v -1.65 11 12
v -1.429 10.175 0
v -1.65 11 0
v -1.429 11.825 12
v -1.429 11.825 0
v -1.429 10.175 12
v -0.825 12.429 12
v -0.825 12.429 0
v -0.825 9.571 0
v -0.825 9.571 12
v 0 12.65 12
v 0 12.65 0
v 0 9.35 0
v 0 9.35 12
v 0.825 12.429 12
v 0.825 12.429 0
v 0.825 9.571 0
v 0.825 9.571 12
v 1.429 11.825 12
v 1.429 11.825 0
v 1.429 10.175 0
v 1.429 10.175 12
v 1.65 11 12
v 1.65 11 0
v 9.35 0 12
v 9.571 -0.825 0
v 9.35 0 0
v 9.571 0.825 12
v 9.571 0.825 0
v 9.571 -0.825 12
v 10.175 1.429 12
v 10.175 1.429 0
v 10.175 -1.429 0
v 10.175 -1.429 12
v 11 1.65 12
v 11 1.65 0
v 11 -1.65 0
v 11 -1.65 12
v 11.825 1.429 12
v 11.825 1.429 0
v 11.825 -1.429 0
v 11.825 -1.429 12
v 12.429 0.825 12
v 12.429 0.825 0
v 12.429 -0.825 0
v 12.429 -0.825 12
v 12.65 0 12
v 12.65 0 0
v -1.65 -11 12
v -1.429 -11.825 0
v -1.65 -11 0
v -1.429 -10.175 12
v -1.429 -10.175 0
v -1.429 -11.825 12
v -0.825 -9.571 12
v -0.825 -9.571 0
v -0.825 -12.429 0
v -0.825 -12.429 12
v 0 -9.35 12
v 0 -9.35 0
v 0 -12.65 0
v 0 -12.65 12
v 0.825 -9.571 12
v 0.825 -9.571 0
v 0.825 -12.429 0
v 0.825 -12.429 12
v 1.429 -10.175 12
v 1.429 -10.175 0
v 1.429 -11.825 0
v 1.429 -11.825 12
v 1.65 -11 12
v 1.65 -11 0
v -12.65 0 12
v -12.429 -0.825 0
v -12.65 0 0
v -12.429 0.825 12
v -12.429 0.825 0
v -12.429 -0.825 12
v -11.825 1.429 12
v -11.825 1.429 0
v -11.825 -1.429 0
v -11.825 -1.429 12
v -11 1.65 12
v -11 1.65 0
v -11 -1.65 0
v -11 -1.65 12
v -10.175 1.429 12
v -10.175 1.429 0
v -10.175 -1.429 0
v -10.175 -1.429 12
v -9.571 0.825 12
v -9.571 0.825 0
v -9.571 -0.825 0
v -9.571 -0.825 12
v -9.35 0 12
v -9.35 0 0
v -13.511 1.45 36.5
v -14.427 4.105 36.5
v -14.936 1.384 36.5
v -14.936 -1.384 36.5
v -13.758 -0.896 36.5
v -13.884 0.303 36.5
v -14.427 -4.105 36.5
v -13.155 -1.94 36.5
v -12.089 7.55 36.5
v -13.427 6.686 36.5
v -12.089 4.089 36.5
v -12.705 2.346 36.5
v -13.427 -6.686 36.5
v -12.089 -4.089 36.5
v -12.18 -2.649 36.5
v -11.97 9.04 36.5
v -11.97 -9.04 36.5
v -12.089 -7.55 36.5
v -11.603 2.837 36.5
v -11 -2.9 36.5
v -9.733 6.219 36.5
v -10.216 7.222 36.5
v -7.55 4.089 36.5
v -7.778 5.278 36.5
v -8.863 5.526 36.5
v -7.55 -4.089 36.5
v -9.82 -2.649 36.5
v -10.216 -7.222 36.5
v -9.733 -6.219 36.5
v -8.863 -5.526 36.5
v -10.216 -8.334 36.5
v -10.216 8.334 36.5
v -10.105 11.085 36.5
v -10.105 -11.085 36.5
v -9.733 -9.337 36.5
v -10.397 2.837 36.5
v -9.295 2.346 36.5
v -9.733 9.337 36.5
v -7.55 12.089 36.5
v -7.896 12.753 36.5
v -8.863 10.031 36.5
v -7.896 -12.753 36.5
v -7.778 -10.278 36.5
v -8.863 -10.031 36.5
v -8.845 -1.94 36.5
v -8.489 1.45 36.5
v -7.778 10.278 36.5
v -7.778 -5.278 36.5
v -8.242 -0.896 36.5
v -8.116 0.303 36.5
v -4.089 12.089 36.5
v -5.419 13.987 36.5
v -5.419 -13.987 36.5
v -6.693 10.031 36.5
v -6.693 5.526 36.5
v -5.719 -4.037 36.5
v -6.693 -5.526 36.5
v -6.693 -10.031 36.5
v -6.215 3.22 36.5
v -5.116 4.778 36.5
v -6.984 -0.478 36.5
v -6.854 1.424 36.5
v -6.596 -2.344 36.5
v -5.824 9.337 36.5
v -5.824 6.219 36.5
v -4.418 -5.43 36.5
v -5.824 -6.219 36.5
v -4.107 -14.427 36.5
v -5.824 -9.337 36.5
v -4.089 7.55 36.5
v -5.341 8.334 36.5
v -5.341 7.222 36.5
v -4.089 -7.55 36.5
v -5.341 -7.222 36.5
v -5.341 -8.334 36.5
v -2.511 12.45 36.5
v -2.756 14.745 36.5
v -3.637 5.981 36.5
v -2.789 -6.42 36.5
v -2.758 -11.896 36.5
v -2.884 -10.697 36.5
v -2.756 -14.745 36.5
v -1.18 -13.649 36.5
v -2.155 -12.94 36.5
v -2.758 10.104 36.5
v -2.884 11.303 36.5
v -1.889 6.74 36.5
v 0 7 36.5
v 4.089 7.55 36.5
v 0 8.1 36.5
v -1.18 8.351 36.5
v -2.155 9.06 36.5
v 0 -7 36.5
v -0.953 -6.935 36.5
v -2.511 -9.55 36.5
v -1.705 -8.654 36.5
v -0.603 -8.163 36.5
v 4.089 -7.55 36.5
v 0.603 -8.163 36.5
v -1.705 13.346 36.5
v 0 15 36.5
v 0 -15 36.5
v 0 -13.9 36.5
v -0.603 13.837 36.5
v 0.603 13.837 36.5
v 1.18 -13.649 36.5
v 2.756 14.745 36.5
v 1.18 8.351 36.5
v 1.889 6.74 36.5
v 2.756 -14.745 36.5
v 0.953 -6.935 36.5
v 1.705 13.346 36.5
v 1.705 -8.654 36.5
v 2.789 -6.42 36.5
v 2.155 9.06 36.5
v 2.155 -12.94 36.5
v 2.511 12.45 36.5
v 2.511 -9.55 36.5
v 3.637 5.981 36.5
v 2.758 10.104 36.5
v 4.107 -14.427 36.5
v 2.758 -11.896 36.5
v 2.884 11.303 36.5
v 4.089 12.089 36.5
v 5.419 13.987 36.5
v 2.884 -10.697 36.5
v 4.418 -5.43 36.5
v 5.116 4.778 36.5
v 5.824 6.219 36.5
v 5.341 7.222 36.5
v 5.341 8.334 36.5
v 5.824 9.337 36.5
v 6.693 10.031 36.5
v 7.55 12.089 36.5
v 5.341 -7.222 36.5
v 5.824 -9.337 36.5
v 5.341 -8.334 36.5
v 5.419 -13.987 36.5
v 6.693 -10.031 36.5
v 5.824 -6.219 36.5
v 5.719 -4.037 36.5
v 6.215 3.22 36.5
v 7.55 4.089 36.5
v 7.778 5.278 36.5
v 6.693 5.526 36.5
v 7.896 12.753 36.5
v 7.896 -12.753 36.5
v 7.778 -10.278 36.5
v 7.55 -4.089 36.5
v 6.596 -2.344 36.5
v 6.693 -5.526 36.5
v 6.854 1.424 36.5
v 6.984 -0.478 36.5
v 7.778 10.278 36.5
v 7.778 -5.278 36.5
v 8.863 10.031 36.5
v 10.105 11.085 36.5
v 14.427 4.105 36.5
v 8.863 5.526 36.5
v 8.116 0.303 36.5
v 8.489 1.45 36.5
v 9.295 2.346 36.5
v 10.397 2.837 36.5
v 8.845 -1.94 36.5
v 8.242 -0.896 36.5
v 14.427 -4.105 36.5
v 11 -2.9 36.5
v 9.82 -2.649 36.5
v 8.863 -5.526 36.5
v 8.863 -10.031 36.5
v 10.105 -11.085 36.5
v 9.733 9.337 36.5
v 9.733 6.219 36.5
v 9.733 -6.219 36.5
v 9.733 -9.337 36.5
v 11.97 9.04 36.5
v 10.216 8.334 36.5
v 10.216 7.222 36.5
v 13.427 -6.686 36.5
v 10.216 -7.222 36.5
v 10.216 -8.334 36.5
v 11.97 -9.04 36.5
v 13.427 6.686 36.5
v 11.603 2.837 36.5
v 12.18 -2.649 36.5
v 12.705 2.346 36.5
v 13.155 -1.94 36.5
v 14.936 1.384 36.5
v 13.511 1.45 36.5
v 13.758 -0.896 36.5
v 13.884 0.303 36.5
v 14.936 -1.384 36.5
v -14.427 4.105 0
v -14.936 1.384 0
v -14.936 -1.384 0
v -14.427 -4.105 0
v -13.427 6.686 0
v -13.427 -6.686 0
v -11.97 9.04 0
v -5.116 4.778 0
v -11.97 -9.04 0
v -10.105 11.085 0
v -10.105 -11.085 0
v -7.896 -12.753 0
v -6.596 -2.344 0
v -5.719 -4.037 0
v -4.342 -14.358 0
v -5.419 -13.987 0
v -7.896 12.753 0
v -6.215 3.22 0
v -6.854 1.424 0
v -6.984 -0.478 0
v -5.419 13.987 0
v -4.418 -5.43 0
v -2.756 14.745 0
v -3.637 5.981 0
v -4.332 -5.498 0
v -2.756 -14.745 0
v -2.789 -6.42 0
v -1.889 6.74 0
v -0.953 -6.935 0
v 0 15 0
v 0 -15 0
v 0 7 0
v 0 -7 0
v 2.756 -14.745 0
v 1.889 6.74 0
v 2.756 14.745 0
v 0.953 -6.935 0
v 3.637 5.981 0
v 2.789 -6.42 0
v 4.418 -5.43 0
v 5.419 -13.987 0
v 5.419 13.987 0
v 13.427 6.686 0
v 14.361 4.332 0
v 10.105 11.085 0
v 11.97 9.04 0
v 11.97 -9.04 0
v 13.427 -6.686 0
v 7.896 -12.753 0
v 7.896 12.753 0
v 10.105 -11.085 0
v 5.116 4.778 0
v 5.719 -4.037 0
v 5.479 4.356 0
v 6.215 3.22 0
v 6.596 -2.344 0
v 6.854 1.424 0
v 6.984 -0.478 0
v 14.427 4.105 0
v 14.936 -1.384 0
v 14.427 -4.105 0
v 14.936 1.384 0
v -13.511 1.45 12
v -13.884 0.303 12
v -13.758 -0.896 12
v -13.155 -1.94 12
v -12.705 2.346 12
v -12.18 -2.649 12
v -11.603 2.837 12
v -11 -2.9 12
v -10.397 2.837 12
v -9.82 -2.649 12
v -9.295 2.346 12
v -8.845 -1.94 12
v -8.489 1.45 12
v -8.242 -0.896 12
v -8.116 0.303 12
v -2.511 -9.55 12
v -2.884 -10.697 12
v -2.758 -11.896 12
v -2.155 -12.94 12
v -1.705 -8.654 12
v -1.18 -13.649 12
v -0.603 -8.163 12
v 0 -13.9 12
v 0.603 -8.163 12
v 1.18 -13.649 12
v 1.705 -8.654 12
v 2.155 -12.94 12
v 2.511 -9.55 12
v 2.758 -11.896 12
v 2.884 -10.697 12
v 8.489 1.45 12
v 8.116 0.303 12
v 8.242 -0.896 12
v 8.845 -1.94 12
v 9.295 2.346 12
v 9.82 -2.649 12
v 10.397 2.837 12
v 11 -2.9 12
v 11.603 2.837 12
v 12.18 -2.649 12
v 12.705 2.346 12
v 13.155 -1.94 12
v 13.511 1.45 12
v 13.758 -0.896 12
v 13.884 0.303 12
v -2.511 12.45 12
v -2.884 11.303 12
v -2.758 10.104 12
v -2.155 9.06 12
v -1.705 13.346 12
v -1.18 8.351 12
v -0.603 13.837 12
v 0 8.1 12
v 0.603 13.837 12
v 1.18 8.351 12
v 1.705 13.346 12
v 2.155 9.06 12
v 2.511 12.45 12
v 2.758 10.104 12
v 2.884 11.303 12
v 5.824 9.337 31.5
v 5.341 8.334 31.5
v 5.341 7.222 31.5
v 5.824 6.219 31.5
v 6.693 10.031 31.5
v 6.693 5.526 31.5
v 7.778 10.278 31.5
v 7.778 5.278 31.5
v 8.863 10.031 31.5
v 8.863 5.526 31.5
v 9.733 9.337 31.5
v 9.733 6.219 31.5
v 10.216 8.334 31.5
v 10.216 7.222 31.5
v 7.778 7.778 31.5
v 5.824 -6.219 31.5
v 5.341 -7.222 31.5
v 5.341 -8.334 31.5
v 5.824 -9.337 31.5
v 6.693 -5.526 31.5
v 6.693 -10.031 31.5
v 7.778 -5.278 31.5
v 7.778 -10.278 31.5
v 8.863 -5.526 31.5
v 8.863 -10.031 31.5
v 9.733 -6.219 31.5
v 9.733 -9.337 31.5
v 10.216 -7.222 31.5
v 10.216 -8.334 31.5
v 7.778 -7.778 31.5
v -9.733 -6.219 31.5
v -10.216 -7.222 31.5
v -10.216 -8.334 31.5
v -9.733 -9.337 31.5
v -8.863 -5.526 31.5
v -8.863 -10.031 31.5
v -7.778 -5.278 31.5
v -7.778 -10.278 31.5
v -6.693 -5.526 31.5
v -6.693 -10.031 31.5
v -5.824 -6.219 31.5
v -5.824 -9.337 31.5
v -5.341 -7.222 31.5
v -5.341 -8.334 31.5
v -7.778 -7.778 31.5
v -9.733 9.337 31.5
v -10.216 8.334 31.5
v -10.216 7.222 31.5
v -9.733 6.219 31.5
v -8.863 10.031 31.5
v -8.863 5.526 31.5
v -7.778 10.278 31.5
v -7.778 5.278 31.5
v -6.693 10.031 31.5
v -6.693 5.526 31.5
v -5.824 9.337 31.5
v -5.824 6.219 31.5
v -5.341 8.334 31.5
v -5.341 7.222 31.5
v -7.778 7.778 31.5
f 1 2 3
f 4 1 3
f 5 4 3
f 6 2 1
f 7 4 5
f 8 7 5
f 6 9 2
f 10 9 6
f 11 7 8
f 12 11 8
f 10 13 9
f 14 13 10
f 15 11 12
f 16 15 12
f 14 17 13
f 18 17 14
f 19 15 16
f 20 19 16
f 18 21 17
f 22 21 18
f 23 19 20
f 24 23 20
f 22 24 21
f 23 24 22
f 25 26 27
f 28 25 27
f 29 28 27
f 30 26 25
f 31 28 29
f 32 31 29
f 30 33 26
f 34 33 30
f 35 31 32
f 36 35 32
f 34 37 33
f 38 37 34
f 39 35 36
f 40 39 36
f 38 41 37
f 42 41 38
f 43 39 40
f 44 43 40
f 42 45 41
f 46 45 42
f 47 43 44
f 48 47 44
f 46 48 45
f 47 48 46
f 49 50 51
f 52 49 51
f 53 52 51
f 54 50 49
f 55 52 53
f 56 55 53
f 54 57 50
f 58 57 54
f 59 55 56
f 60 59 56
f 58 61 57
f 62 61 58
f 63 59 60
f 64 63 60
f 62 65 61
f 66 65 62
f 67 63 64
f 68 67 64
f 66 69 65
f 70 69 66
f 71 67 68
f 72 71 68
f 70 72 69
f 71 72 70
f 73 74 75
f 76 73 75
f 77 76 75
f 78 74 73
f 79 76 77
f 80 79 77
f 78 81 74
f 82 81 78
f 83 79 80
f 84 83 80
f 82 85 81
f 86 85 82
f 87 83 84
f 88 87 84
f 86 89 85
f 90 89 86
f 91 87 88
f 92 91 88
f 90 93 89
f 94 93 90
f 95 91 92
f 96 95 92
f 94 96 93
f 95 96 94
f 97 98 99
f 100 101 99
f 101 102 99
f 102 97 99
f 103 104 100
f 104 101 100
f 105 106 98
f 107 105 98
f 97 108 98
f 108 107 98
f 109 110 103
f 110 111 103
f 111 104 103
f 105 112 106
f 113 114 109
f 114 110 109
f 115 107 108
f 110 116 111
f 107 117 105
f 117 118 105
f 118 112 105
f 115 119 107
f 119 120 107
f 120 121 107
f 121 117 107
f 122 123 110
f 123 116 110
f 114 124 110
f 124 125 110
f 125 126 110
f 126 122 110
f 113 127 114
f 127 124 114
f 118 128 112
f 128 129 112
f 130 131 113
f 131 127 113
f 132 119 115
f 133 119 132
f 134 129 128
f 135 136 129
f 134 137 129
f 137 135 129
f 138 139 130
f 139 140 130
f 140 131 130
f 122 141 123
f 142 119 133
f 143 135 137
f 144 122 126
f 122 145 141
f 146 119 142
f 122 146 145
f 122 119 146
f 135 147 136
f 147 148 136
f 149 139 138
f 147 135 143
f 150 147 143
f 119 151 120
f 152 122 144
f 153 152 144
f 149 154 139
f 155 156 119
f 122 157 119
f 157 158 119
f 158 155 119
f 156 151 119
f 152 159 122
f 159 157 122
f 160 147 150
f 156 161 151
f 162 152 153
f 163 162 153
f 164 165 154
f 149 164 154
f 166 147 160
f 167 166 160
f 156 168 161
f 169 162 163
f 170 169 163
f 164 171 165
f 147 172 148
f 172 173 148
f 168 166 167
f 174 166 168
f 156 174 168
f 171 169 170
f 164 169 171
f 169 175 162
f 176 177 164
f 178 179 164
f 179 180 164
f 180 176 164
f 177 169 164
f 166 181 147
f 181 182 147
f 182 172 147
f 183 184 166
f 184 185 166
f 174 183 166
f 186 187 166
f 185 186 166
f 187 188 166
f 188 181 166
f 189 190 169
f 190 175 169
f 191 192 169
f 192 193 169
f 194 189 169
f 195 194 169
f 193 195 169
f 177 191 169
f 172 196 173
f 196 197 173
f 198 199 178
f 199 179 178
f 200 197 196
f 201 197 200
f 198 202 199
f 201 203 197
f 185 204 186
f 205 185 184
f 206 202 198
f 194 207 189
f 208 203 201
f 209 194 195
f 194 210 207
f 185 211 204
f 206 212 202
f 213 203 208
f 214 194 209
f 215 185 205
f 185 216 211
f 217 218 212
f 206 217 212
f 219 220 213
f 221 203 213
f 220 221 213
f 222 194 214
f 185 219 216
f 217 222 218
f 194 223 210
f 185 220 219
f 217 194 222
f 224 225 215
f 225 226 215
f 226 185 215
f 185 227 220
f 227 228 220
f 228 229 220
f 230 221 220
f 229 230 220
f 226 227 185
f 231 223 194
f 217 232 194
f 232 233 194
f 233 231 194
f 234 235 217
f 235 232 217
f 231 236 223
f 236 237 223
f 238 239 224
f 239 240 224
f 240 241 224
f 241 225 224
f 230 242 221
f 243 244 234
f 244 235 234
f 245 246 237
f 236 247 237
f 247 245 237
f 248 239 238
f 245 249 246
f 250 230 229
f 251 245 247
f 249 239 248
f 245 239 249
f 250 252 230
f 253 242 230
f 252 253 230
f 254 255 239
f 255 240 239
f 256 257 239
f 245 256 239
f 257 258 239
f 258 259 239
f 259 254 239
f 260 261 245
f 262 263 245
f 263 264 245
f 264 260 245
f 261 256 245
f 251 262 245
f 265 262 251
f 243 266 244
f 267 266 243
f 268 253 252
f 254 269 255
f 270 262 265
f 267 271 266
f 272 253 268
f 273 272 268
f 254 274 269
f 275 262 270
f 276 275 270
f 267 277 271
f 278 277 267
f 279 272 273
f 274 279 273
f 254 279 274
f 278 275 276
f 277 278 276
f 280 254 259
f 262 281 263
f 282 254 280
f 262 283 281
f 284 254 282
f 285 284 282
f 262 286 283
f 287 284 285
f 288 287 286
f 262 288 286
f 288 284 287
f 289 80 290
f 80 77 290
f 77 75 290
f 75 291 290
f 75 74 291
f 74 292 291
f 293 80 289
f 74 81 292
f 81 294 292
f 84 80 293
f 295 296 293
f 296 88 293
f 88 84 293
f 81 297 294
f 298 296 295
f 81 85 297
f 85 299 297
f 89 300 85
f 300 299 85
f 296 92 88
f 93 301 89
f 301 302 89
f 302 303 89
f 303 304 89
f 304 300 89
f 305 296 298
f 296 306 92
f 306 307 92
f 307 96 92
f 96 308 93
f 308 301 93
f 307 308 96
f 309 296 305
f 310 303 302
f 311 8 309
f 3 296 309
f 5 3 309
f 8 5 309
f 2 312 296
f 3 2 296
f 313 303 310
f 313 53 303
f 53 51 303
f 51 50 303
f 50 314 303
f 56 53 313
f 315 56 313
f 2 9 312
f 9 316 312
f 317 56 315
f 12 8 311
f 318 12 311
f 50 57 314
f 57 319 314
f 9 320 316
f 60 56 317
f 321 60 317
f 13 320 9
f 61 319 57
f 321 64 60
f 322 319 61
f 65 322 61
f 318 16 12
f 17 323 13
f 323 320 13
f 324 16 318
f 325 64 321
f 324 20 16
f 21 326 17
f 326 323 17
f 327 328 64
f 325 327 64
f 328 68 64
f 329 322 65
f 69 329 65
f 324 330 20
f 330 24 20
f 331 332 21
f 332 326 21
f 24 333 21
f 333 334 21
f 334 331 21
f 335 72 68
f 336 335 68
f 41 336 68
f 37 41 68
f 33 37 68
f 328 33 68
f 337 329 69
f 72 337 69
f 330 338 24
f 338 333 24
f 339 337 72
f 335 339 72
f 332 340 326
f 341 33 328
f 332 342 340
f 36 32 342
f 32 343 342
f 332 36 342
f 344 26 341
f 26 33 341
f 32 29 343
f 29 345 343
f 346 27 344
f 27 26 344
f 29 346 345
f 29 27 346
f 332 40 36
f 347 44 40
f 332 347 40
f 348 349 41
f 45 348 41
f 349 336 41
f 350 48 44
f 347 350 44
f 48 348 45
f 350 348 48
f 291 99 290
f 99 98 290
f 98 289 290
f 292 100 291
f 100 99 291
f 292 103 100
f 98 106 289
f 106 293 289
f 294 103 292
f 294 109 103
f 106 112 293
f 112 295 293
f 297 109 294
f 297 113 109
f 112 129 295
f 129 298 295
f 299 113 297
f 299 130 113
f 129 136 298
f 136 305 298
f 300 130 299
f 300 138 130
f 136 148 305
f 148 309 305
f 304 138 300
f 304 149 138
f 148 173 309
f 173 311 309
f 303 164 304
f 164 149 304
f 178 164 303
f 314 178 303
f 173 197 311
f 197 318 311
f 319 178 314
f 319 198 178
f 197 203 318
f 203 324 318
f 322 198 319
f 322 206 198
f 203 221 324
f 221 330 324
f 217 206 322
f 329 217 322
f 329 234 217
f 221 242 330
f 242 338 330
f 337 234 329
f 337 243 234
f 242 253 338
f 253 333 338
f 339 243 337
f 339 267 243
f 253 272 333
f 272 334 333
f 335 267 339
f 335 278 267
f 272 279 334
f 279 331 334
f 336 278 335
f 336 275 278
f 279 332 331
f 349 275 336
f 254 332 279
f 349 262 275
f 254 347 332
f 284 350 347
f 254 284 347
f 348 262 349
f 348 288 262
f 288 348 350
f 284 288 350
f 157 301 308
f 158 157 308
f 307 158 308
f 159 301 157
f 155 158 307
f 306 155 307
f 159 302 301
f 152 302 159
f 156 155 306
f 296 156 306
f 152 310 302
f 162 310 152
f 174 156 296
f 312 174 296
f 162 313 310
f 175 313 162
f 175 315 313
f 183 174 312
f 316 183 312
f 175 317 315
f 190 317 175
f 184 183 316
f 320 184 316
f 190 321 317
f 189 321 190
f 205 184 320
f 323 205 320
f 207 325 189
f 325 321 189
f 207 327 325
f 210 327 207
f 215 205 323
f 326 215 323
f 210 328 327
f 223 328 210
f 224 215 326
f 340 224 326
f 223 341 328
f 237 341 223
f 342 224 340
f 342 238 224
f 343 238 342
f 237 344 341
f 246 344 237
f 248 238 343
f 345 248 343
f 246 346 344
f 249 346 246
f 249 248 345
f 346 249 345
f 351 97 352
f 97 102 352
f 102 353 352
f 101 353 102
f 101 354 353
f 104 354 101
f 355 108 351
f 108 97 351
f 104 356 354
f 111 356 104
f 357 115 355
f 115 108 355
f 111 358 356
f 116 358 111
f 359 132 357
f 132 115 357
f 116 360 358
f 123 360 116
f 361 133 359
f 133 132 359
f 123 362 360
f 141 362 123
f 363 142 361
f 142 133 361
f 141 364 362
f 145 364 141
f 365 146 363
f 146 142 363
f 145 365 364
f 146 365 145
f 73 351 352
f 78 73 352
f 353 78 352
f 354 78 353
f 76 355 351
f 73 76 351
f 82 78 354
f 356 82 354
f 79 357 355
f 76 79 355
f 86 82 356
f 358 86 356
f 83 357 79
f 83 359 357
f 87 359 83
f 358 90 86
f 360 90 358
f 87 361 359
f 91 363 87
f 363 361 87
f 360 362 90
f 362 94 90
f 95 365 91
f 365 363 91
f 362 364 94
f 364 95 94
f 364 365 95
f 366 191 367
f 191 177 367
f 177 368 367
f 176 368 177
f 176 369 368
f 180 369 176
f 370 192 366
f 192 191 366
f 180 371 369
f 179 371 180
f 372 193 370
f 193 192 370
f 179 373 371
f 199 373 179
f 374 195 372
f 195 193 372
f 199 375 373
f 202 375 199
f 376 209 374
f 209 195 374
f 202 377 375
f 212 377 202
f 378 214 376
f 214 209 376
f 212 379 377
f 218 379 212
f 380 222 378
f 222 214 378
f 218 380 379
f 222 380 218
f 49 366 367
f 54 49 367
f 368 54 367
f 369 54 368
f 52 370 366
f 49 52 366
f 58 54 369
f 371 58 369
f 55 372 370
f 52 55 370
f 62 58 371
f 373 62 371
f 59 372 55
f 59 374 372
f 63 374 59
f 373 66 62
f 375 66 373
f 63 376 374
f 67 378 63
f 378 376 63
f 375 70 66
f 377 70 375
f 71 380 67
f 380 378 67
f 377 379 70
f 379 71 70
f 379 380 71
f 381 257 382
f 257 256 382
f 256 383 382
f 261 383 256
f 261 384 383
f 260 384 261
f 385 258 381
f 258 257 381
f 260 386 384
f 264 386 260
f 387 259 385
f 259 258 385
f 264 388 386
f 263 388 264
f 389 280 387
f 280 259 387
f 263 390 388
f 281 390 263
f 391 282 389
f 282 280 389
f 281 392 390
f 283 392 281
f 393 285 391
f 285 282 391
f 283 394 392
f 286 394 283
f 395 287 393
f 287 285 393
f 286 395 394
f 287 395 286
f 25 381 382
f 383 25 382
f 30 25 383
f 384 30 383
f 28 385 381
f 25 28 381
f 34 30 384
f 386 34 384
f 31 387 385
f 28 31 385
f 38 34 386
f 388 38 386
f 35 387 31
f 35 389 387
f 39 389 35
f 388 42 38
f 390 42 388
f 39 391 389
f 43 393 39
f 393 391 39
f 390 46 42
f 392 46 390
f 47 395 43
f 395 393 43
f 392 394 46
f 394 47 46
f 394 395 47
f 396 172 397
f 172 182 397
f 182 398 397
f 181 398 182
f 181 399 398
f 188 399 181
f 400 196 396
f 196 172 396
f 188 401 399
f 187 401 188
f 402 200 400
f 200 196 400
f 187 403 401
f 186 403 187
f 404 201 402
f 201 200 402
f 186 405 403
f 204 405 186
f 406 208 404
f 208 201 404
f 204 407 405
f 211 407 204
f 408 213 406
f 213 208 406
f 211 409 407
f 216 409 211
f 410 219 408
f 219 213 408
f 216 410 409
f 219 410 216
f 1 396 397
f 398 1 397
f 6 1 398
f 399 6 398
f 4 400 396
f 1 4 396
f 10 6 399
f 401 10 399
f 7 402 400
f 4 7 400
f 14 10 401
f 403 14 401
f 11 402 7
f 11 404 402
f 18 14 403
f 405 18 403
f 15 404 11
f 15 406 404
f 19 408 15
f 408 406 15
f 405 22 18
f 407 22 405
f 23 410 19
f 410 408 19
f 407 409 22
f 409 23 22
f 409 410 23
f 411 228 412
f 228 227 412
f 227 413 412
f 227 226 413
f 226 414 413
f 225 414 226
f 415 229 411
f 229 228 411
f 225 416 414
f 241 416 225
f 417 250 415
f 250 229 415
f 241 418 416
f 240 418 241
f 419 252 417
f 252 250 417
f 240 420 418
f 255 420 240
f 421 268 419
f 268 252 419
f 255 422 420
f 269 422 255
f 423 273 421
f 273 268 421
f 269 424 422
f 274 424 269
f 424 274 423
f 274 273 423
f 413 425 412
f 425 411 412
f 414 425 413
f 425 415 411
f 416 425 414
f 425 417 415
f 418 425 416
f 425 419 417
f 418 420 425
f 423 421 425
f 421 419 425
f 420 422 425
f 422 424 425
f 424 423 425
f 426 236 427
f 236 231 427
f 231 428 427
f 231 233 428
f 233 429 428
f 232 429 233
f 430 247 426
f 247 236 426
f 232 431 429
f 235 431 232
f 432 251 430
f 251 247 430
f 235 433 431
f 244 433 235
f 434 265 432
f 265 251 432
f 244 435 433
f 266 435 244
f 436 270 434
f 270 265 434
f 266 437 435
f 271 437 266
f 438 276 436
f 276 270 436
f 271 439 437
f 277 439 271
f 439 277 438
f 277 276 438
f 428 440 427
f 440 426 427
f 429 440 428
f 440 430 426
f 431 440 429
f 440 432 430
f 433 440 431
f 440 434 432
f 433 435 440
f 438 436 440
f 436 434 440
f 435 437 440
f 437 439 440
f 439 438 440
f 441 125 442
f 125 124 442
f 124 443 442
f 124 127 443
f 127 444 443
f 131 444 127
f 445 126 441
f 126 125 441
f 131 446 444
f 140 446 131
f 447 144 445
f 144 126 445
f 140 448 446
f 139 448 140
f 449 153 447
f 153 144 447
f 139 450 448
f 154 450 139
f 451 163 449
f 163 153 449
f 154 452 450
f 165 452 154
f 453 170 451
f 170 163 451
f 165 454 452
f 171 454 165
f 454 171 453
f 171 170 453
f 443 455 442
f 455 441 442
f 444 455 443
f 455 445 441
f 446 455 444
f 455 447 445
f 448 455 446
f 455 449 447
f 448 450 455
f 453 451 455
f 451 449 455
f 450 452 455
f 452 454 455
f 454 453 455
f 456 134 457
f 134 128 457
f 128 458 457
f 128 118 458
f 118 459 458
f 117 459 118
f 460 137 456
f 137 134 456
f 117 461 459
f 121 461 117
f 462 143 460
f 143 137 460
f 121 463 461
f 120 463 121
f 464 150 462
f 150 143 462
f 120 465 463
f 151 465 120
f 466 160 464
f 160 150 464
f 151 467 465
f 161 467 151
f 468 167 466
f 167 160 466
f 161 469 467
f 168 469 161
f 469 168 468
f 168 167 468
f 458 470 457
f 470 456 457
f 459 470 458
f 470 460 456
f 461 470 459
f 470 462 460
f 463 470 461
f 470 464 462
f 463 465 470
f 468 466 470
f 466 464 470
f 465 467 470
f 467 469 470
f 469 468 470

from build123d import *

# Parameters (mm, degrees)
SKIZZE1_R                       = 15
SKIZZE1_R_2                     = 7
SKIZZE1_R_3                     = 1.65
AUFSATZ_LINEAR_AUSTRAGEN1_DEPTH = 36.5
SKIZZE2_R                       = 2.9
SCHNITT_LINEAR_AUSTRAGEN1_DEPTH = 24.5
SKIZZE3_R                       = 2.5
SCHNITT_LINEAR_AUSTRAGEN2_DEPTH = 5


with BuildPart() as part:
    # Skizze1 → Aufsatz-Linear austragen1 (new body)
    with BuildSketch(Plane.XY):
        Circle(SKIZZE1_R)
        Circle(SKIZZE1_R_2, mode=Mode.SUBTRACT)
        with Locations((-11, 0)):
            Circle(SKIZZE1_R_3, mode=Mode.SUBTRACT)
        with Locations((0, 11)):
            Circle(SKIZZE1_R_3, mode=Mode.SUBTRACT)
        with Locations((11, 0)):
            Circle(SKIZZE1_R_3, mode=Mode.SUBTRACT)
        with Locations((0, -11)):
            Circle(SKIZZE1_R_3, mode=Mode.SUBTRACT)
    extrude(amount=AUFSATZ_LINEAR_AUSTRAGEN1_DEPTH)

    # Skizze2 → Schnitt-Linear austragen1 (cut)
    with BuildSketch(Plane.XY.offset(36.5)):
        with Locations((-11, 0)):
            Circle(SKIZZE2_R)
        with Locations((0, 11)):
            Circle(SKIZZE2_R)
        with Locations((11, 0)):
            Circle(SKIZZE2_R)
        with Locations((0, -11)):
            Circle(SKIZZE2_R)
    extrude(amount=-SCHNITT_LINEAR_AUSTRAGEN1_DEPTH, mode=Mode.SUBTRACT)

    # Skizze3 → Schnitt-Linear austragen2 (cut)
    with BuildSketch(Plane.XY.offset(36.5)):
        with Locations((-7.778174593, 7.778174593)):
            Circle(SKIZZE3_R)
        with Locations((7.778174593, 7.778174593)):
            Circle(SKIZZE3_R)
        with Locations((7.778174593, -7.778174593)):
            Circle(SKIZZE3_R)
        with Locations((-7.778174593, -7.778174593)):
            Circle(SKIZZE3_R)
    extrude(amount=-SCHNITT_LINEAR_AUSTRAGEN2_DEPTH, mode=Mode.SUBTRACT)


solid = part.part
